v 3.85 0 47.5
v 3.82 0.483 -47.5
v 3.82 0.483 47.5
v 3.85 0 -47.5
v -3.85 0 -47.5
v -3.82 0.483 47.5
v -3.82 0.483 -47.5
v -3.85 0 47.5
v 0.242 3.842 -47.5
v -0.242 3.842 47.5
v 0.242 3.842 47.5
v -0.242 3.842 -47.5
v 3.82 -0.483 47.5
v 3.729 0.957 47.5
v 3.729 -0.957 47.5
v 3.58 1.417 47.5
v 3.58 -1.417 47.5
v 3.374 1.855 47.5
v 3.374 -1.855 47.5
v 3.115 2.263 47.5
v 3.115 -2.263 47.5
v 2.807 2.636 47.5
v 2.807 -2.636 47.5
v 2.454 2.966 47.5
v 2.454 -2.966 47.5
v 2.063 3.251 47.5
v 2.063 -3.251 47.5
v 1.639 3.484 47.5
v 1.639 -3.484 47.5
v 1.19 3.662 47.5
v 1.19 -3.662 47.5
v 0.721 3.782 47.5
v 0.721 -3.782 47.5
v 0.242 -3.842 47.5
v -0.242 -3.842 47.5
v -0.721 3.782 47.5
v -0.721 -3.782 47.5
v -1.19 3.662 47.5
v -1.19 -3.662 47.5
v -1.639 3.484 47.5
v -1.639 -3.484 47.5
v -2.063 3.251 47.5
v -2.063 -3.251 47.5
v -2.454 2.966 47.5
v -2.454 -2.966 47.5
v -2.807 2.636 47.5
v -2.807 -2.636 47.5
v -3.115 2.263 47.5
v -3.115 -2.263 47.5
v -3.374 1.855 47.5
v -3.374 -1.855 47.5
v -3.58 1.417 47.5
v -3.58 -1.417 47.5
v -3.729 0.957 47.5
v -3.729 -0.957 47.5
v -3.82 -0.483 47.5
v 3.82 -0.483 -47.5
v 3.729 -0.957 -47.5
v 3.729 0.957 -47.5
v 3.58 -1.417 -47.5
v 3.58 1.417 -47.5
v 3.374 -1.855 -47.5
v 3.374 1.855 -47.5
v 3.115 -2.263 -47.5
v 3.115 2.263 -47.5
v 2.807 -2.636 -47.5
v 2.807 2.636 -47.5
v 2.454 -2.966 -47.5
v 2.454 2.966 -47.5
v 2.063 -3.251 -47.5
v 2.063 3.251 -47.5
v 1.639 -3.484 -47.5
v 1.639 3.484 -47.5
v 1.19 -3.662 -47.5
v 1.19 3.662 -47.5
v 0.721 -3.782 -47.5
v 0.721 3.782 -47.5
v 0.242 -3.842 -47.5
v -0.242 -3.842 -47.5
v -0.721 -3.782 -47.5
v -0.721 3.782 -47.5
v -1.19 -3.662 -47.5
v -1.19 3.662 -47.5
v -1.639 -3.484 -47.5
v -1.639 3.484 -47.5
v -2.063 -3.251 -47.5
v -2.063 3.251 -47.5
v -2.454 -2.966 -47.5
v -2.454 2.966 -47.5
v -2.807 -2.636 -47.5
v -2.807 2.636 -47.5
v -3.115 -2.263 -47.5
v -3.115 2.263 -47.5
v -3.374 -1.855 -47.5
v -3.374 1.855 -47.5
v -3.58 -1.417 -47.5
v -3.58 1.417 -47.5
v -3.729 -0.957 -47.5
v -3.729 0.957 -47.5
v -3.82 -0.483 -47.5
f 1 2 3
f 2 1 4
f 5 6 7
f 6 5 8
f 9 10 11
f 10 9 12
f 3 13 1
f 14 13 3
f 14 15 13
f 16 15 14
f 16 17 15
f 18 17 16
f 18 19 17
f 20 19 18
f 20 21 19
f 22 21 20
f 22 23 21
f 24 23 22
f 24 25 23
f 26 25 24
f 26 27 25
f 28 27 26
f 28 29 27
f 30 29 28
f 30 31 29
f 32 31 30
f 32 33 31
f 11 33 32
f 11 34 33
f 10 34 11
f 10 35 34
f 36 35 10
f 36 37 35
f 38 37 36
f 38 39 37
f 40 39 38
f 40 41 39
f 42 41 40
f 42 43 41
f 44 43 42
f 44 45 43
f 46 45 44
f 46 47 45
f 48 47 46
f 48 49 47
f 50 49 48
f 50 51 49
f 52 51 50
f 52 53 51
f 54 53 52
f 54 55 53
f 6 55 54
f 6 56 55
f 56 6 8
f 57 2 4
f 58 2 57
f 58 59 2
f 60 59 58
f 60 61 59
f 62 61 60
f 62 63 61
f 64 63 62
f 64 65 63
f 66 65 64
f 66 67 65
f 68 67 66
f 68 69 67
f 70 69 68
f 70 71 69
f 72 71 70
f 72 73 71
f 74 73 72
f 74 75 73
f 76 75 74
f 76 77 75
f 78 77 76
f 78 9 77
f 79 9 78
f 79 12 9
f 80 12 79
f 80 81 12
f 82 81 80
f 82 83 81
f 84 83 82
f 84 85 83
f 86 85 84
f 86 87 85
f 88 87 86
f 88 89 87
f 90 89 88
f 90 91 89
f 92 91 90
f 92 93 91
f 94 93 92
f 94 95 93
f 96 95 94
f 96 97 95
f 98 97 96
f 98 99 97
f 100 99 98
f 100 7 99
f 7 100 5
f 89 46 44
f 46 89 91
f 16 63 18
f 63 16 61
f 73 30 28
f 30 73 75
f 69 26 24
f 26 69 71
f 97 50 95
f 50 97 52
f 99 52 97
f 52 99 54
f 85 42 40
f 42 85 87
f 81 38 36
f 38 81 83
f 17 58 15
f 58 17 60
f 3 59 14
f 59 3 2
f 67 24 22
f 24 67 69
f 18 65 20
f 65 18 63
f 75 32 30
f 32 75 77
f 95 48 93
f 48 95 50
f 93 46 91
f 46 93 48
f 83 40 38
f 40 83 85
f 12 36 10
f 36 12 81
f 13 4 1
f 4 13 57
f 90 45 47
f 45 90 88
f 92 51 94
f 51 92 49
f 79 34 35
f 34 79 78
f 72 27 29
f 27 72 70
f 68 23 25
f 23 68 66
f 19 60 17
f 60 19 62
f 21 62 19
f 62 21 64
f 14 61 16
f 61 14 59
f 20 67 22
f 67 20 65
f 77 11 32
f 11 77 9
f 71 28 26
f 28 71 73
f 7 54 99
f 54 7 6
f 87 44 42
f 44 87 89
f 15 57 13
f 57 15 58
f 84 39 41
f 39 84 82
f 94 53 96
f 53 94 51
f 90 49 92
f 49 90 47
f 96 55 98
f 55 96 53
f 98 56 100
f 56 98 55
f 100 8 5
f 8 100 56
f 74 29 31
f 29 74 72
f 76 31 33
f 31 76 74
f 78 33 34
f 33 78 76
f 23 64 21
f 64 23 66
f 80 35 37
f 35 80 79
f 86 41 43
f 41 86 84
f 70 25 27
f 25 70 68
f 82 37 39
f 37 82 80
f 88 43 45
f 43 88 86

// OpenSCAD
$fn = 50;


difference() {
	union() {
		translate(v = [0, 0, -47.5000000000]) {
			cylinder(h = 95, r = 3.8500000000);
		}
	}
	union() {
		translate(v = [0, 0, -100.0000000000]) {
			cylinder(h = 200, r = 0);
		}
	}
}
